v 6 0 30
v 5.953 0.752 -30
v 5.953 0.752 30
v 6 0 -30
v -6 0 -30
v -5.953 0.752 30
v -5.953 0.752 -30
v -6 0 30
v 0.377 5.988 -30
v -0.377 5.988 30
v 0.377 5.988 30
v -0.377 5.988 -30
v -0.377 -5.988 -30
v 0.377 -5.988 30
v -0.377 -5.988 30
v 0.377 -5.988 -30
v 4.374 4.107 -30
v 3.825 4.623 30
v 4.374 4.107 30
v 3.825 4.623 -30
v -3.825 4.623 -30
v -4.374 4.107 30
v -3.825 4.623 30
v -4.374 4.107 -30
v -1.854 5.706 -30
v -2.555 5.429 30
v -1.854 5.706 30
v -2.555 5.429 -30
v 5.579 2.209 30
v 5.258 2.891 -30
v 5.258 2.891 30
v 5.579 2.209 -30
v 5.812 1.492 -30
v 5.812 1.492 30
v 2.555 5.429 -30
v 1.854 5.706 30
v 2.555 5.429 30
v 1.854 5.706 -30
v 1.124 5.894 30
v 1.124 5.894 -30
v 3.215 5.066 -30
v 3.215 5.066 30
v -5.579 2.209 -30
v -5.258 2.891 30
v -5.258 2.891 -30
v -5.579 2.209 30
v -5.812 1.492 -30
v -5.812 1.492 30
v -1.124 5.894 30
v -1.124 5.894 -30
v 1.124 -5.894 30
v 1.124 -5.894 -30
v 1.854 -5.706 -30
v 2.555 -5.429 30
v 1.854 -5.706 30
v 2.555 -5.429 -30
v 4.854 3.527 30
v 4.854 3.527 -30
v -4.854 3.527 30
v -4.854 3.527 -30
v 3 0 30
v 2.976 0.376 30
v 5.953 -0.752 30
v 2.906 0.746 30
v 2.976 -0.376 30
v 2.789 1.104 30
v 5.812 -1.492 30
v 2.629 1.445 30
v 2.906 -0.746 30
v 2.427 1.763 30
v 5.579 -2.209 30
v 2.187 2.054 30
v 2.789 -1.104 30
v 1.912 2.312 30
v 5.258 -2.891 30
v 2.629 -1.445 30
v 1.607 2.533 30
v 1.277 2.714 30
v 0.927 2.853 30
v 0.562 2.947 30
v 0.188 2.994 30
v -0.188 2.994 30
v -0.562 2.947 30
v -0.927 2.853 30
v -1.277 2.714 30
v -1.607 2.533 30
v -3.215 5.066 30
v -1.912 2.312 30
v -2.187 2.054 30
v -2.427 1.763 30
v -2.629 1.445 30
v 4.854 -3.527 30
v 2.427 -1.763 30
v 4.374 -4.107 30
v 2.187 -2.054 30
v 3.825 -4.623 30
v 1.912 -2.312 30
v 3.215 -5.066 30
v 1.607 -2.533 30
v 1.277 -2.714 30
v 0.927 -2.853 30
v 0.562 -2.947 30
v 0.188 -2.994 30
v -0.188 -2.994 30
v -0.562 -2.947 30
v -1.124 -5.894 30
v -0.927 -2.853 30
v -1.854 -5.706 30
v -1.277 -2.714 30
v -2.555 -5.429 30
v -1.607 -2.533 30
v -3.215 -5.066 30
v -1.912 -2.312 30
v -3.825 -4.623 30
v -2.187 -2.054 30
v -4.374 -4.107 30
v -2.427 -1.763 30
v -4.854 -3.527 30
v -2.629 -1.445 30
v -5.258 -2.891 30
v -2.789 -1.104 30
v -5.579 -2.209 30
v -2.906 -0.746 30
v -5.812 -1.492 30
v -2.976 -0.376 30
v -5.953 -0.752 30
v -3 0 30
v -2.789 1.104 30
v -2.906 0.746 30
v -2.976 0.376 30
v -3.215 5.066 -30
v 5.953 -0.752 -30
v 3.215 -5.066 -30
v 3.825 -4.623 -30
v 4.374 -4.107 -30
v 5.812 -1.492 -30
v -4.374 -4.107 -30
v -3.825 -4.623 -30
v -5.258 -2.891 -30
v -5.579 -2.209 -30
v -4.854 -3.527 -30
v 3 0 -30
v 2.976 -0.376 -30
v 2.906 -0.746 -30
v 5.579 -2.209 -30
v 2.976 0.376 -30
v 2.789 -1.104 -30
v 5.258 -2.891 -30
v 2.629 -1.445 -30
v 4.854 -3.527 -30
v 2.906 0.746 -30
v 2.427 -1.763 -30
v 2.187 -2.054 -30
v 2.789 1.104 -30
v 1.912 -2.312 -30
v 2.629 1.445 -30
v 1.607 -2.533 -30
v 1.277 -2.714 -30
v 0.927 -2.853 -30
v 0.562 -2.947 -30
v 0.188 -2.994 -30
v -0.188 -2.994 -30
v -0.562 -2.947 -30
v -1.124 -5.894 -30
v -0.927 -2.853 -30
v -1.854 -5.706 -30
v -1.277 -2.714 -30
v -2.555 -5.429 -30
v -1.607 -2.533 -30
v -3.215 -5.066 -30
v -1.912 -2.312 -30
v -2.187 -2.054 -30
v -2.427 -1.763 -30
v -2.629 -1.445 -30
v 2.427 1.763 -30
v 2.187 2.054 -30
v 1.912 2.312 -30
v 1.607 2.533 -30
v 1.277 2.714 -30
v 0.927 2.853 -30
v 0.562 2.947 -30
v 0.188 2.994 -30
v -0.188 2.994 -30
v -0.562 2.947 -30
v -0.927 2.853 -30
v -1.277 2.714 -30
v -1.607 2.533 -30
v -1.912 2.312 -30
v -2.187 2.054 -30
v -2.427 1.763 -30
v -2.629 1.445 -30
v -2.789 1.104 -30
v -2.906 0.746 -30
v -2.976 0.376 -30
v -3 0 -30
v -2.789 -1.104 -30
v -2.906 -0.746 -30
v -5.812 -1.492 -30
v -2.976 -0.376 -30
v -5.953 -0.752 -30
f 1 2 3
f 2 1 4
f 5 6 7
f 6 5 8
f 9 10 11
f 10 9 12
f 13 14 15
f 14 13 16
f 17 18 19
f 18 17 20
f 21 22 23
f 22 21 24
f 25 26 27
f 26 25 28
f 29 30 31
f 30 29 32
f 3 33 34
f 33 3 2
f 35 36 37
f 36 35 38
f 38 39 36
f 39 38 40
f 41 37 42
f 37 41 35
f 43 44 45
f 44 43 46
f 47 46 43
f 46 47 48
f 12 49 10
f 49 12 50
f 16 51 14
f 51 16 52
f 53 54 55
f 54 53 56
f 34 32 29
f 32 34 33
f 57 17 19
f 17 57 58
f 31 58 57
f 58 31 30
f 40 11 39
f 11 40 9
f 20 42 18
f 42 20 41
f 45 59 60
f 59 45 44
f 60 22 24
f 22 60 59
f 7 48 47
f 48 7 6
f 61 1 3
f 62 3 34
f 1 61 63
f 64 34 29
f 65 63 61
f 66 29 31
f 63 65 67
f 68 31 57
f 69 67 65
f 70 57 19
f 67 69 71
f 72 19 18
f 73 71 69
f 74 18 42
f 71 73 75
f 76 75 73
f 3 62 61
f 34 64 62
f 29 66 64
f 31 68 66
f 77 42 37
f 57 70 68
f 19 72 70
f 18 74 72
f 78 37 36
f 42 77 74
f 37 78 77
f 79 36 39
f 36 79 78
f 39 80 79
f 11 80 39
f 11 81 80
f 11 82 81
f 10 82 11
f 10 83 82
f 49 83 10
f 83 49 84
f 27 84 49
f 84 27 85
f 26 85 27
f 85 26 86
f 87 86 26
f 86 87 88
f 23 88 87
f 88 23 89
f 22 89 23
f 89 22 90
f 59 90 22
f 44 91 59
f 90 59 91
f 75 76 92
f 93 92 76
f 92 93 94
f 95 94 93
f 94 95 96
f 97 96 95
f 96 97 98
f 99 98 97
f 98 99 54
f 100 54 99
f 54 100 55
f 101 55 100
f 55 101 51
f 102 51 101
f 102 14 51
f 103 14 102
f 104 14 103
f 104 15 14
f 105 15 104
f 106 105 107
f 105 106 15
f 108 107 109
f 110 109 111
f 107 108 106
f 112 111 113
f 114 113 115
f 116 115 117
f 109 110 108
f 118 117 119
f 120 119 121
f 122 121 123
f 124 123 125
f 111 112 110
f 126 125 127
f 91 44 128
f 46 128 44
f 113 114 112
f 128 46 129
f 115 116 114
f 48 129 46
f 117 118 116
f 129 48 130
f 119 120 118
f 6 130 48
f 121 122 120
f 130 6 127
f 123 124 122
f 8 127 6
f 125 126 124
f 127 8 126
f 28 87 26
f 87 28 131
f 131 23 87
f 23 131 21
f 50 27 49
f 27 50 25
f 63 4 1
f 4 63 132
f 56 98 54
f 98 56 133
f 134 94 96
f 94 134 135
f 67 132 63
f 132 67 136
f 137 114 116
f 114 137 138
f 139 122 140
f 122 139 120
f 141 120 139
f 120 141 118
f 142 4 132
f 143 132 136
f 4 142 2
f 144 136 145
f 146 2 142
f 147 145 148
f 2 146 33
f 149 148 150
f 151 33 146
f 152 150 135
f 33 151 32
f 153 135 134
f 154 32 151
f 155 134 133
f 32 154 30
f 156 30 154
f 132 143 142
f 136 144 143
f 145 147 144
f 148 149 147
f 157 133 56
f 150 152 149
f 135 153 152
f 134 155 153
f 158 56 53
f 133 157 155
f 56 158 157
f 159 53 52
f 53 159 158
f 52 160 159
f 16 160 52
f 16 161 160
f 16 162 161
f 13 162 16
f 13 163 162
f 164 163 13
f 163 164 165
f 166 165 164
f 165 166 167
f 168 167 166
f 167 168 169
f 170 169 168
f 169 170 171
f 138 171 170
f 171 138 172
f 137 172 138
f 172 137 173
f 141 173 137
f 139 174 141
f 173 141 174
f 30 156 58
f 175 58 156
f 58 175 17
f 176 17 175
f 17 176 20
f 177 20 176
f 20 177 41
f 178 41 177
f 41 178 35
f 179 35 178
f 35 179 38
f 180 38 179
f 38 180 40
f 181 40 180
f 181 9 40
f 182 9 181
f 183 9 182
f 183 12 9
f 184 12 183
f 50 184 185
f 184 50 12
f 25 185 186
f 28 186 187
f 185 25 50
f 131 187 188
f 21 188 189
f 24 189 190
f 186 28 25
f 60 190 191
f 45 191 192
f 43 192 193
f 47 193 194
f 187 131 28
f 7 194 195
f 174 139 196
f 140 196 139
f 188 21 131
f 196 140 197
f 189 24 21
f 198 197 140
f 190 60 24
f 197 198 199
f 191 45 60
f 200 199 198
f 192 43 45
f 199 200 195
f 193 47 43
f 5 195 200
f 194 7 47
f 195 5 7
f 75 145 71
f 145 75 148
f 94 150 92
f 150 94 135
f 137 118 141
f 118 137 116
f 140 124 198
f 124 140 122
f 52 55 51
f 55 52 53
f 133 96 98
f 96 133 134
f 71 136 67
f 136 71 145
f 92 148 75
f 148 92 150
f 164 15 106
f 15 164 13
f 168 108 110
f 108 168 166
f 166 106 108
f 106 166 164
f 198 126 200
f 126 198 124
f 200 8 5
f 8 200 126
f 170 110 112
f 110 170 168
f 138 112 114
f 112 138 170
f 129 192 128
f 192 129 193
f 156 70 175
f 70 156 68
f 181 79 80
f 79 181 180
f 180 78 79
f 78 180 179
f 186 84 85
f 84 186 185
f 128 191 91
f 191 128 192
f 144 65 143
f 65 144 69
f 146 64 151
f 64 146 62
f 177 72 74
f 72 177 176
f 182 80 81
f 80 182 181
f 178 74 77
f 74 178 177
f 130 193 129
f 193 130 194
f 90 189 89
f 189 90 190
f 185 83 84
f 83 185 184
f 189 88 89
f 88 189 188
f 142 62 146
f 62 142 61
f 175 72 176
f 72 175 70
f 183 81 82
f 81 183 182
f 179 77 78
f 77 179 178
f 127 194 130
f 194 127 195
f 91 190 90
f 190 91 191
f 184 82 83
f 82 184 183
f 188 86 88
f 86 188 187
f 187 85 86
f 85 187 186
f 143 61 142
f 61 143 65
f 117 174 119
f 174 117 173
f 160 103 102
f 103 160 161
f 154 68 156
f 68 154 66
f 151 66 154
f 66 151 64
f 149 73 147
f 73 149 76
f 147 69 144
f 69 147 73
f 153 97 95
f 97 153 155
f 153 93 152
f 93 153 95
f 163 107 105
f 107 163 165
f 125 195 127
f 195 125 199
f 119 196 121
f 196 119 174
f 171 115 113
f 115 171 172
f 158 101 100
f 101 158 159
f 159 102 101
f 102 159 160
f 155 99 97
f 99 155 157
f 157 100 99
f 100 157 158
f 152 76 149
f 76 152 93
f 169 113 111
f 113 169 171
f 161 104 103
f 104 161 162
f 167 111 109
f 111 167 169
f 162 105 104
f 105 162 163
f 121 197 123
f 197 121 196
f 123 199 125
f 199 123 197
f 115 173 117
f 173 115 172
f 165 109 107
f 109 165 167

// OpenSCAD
$fn = 50;


difference() {
	union() {
		translate(v = [0, 0, -30.0000000000]) {
			cylinder(h = 60, r = 6.0000000000);
		}
	}
	union() {
		translate(v = [0, 0, -100.0000000000]) {
			cylinder(h = 200, r = 3);
		}
	}
}
